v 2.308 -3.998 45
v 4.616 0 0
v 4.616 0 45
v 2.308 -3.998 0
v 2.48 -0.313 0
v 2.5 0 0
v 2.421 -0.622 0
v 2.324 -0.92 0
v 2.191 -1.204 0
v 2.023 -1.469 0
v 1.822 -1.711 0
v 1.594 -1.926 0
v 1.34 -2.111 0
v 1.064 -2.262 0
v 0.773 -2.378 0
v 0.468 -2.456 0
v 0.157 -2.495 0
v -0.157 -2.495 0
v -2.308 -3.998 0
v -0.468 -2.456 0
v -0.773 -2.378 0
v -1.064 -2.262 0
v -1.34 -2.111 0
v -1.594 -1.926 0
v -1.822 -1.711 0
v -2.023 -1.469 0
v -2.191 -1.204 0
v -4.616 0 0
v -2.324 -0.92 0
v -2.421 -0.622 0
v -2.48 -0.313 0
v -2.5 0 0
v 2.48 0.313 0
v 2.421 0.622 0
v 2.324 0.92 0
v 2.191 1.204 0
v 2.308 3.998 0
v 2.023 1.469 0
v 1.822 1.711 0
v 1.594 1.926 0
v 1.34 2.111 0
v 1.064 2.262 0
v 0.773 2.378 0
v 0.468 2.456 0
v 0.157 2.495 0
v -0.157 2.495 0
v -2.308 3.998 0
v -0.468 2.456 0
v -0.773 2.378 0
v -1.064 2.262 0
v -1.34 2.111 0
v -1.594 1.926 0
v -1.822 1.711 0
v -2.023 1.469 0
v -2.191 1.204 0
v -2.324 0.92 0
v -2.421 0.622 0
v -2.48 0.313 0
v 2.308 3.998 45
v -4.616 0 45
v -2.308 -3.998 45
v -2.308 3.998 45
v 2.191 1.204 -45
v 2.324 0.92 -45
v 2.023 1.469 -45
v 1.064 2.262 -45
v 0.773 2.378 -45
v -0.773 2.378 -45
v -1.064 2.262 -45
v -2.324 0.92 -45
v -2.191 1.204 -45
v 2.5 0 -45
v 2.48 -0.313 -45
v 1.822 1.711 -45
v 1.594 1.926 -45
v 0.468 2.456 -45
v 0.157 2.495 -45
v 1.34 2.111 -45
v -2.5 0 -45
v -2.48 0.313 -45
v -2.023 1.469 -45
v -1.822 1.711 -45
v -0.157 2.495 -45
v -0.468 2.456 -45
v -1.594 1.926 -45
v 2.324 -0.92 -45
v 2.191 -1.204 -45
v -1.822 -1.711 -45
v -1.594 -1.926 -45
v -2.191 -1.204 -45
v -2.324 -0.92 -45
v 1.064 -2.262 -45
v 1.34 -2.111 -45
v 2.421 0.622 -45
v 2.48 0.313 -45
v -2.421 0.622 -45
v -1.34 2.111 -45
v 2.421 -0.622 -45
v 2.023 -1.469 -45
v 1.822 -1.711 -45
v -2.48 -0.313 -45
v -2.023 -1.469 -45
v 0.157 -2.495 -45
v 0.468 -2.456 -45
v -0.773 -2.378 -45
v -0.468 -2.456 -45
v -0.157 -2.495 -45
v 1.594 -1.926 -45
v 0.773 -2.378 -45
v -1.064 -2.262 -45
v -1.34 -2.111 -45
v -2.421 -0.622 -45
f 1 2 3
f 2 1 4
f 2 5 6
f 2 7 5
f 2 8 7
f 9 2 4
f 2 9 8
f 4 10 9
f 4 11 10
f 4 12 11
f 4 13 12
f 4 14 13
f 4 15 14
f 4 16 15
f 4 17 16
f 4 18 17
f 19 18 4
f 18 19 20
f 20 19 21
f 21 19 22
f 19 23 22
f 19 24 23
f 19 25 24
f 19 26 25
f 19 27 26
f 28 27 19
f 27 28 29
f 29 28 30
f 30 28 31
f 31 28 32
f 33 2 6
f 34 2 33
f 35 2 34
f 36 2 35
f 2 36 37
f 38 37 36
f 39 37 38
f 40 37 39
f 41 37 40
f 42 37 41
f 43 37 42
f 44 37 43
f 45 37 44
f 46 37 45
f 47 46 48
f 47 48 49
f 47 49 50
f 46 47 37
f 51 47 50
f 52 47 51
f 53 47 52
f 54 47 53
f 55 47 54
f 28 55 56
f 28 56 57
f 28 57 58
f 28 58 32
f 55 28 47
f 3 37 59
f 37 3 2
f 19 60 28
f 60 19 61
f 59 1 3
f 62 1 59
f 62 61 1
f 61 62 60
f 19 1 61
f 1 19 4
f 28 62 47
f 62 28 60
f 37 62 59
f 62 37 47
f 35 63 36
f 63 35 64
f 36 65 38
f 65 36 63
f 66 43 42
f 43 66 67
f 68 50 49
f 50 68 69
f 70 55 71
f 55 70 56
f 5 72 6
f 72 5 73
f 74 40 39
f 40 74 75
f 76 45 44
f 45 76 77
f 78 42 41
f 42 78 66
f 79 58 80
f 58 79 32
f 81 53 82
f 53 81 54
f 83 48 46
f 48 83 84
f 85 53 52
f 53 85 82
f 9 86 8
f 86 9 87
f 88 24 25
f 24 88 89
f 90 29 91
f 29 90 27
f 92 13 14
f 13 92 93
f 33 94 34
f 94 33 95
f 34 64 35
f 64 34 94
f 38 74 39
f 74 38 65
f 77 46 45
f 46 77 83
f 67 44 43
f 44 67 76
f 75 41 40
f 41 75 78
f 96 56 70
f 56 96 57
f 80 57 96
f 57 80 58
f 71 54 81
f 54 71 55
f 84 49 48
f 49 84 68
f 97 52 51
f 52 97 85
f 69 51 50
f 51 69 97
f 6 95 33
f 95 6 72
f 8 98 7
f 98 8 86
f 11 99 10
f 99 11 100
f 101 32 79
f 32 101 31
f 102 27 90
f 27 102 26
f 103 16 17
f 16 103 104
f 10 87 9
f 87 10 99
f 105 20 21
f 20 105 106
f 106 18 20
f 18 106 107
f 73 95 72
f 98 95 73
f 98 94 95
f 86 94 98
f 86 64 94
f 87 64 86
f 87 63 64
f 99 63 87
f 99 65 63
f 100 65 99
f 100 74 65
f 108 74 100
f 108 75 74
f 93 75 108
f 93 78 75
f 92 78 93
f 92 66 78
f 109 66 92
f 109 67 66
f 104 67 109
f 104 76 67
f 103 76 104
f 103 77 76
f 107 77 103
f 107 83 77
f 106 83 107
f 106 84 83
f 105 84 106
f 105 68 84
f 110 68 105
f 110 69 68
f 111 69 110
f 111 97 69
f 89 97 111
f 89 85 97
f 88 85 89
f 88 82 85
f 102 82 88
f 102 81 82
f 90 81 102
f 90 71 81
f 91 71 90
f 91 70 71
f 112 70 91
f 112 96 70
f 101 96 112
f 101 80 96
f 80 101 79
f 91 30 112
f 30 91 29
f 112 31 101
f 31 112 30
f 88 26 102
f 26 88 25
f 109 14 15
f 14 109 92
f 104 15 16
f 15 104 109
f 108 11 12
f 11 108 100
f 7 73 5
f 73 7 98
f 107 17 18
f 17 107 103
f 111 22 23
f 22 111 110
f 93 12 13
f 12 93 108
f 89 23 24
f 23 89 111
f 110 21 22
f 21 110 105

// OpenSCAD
$fn = 50;


difference() {
	union() {
		translate(v = [0, 0, 0]) {
			rotate(a = [0, 0, 0]) {
				translate(v = [0, 0, 0]) {
					rotate(a = [0, 0, 0]) {
						linear_extrude(height = 45) {
							polygon(points = [[4.6160000000, 0.0000000000], [2.3080000000, 3.9975732639], [-2.3080000000, 3.9975732639], [-4.6160000000, 0.0000000000], [-2.3080000000, -3.9975732639], [2.3080000000, -3.9975732639]]);
						}
					}
				}
			}
		}
		translate(v = [0, 0, -45]) {
			rotate(a = [0, 0, 0]) {
				cylinder(h = 45, r = 2.5000000000);
			}
		}
	}
	union();
}
